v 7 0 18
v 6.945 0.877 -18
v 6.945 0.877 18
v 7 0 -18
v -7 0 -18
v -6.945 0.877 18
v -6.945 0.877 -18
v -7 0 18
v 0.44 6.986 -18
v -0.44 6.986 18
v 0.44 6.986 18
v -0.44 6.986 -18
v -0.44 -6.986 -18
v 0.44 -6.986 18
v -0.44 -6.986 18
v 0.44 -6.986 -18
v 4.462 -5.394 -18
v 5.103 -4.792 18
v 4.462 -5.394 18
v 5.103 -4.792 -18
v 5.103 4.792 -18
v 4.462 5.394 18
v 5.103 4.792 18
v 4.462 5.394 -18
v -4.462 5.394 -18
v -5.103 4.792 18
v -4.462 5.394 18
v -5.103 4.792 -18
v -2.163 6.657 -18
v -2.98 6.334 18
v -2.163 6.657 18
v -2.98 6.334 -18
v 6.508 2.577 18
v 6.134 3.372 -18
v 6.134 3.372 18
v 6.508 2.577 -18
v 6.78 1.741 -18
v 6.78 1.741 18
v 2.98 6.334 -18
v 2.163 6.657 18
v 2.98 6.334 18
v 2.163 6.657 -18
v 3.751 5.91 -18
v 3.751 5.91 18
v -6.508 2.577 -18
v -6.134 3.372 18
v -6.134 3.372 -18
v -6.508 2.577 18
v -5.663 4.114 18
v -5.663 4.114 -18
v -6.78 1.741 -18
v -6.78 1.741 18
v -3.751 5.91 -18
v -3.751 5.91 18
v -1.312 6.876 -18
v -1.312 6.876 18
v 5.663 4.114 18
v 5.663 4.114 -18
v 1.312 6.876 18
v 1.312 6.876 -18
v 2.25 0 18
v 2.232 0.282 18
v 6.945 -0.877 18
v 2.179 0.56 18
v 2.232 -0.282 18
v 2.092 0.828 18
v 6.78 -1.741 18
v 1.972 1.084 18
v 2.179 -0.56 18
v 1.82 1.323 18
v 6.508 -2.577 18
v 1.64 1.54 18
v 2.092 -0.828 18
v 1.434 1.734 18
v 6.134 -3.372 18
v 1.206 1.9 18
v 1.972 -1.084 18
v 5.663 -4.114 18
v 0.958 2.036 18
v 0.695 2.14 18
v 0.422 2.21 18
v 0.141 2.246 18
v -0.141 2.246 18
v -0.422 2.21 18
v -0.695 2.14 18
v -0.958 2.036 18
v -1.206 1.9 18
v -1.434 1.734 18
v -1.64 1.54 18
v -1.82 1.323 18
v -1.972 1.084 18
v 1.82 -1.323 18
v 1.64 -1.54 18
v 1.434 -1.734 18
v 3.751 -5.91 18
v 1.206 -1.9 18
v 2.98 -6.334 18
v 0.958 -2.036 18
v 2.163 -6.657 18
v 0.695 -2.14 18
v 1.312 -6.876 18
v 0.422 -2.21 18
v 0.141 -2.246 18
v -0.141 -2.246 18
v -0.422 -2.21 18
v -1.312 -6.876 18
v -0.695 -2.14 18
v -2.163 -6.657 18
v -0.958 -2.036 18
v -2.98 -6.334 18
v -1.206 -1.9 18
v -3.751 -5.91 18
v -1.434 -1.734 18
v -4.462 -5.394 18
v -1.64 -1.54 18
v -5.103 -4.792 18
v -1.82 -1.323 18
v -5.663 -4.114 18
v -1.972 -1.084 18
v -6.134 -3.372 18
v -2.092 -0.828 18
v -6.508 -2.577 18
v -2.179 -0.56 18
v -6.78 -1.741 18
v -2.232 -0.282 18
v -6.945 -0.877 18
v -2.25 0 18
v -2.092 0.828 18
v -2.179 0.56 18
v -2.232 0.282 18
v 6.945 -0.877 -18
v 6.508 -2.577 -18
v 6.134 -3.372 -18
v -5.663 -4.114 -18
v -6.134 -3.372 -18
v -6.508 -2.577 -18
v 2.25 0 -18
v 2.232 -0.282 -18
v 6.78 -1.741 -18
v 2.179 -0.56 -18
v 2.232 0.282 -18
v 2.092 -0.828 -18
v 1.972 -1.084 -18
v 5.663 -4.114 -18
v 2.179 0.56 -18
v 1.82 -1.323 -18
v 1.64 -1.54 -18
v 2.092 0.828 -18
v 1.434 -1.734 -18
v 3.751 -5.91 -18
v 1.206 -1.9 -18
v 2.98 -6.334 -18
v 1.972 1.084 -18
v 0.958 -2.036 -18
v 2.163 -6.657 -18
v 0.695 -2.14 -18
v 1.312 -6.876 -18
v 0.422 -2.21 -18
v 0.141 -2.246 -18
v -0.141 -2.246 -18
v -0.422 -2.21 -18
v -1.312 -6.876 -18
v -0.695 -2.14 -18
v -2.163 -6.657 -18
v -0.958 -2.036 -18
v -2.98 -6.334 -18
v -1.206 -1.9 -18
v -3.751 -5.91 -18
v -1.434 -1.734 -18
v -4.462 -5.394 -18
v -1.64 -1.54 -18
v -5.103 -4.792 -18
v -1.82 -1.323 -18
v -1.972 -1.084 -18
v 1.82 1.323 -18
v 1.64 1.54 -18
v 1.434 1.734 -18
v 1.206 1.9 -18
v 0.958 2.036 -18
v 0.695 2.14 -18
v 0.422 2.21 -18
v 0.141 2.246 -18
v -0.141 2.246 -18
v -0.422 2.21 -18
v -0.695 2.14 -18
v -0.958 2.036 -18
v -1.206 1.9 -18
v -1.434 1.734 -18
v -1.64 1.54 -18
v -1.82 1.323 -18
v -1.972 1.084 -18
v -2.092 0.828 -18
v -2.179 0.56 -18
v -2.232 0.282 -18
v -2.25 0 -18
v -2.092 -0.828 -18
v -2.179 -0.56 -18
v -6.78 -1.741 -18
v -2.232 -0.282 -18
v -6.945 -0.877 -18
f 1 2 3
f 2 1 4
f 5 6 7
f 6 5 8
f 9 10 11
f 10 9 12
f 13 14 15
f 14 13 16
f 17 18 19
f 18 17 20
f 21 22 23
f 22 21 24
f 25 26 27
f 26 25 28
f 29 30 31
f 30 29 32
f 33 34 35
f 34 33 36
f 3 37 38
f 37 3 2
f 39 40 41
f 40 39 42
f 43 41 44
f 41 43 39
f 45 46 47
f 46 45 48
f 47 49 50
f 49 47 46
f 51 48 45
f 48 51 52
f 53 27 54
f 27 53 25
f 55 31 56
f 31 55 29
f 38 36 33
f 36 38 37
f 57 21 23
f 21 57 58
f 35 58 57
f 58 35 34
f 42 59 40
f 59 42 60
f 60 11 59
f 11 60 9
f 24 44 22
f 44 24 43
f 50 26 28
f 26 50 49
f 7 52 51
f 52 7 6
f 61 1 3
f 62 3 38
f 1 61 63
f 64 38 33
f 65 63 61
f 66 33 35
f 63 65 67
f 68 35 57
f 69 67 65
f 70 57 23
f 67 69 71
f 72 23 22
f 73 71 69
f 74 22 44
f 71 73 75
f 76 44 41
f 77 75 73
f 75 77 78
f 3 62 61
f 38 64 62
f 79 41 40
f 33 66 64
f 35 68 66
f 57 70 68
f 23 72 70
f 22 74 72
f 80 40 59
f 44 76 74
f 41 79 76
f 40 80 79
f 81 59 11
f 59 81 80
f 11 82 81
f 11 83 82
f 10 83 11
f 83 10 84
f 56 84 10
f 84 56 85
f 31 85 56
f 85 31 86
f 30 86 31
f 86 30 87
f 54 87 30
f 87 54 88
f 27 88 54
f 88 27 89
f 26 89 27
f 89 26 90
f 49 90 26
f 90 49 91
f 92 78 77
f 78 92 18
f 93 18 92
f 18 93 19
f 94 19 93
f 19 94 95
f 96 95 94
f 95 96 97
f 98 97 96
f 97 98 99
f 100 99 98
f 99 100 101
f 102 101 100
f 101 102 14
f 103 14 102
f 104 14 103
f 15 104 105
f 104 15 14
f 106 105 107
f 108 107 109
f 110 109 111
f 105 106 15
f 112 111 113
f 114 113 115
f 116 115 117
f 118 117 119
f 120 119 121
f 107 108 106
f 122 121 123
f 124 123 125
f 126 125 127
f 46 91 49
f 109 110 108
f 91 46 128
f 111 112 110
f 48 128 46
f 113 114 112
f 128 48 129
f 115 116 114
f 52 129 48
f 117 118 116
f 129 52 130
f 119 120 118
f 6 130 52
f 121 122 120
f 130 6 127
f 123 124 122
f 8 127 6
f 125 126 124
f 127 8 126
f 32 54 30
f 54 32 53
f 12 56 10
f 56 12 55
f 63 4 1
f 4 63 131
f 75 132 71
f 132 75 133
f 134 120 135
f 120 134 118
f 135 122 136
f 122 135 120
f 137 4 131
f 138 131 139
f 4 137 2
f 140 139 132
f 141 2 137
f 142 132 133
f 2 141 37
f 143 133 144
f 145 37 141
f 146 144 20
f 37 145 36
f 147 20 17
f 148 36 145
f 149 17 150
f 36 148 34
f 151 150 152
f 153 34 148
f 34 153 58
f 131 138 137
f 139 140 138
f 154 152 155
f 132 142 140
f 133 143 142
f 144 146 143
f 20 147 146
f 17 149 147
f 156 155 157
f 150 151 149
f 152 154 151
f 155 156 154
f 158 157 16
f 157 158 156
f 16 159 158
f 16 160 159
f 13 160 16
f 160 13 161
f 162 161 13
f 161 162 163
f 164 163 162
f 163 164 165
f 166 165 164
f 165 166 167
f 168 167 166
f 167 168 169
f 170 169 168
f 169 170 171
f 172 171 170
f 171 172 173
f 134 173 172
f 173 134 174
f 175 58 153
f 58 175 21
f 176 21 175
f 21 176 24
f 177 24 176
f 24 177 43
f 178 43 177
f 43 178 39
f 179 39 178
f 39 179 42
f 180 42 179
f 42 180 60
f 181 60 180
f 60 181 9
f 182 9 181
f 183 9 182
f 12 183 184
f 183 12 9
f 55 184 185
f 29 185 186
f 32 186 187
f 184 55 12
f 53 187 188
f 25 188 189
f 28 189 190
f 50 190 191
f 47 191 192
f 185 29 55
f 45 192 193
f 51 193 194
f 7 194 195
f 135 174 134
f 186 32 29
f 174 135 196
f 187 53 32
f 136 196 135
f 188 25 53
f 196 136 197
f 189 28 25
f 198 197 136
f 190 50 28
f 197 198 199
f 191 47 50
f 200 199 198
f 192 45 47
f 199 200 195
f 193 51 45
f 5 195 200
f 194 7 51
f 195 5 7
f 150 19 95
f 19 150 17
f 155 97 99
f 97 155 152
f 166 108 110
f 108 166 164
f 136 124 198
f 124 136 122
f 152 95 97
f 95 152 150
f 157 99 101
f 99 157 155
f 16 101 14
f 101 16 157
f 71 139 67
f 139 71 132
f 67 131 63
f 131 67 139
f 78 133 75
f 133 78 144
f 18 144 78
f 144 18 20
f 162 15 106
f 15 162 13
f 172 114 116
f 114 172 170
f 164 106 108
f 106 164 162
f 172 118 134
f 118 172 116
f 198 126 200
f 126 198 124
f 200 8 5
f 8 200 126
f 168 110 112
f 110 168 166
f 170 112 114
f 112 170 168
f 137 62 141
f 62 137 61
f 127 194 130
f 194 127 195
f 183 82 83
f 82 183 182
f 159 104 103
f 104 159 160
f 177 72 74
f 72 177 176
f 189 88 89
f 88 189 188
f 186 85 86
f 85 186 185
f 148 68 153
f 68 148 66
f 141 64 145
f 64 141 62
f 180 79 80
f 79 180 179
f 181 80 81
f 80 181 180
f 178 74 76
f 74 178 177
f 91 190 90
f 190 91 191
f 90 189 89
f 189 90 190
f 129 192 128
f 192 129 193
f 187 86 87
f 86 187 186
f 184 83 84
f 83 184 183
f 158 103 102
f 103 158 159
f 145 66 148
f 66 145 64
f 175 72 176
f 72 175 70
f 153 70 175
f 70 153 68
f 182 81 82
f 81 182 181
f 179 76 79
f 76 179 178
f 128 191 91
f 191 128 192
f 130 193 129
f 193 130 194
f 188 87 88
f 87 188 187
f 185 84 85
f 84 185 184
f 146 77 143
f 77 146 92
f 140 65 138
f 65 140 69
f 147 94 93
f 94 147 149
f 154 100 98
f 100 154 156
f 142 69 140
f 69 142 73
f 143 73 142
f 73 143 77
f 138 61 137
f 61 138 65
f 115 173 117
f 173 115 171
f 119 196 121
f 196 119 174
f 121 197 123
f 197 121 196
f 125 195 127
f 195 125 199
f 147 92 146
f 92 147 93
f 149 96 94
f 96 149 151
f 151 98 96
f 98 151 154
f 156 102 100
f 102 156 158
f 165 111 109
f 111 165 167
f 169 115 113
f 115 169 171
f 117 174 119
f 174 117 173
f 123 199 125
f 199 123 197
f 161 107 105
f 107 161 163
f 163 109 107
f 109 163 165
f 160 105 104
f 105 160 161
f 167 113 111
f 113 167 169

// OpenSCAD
$fn = 50;


difference() {
	union() {
		translate(v = [0, 0, -18.0000000000]) {
			cylinder(h = 36, r = 7.0000000000);
		}
	}
	union() {
		translate(v = [0, 0, -100.0000000000]) {
			cylinder(h = 200, r = 2.2500000000);
		}
	}
}
